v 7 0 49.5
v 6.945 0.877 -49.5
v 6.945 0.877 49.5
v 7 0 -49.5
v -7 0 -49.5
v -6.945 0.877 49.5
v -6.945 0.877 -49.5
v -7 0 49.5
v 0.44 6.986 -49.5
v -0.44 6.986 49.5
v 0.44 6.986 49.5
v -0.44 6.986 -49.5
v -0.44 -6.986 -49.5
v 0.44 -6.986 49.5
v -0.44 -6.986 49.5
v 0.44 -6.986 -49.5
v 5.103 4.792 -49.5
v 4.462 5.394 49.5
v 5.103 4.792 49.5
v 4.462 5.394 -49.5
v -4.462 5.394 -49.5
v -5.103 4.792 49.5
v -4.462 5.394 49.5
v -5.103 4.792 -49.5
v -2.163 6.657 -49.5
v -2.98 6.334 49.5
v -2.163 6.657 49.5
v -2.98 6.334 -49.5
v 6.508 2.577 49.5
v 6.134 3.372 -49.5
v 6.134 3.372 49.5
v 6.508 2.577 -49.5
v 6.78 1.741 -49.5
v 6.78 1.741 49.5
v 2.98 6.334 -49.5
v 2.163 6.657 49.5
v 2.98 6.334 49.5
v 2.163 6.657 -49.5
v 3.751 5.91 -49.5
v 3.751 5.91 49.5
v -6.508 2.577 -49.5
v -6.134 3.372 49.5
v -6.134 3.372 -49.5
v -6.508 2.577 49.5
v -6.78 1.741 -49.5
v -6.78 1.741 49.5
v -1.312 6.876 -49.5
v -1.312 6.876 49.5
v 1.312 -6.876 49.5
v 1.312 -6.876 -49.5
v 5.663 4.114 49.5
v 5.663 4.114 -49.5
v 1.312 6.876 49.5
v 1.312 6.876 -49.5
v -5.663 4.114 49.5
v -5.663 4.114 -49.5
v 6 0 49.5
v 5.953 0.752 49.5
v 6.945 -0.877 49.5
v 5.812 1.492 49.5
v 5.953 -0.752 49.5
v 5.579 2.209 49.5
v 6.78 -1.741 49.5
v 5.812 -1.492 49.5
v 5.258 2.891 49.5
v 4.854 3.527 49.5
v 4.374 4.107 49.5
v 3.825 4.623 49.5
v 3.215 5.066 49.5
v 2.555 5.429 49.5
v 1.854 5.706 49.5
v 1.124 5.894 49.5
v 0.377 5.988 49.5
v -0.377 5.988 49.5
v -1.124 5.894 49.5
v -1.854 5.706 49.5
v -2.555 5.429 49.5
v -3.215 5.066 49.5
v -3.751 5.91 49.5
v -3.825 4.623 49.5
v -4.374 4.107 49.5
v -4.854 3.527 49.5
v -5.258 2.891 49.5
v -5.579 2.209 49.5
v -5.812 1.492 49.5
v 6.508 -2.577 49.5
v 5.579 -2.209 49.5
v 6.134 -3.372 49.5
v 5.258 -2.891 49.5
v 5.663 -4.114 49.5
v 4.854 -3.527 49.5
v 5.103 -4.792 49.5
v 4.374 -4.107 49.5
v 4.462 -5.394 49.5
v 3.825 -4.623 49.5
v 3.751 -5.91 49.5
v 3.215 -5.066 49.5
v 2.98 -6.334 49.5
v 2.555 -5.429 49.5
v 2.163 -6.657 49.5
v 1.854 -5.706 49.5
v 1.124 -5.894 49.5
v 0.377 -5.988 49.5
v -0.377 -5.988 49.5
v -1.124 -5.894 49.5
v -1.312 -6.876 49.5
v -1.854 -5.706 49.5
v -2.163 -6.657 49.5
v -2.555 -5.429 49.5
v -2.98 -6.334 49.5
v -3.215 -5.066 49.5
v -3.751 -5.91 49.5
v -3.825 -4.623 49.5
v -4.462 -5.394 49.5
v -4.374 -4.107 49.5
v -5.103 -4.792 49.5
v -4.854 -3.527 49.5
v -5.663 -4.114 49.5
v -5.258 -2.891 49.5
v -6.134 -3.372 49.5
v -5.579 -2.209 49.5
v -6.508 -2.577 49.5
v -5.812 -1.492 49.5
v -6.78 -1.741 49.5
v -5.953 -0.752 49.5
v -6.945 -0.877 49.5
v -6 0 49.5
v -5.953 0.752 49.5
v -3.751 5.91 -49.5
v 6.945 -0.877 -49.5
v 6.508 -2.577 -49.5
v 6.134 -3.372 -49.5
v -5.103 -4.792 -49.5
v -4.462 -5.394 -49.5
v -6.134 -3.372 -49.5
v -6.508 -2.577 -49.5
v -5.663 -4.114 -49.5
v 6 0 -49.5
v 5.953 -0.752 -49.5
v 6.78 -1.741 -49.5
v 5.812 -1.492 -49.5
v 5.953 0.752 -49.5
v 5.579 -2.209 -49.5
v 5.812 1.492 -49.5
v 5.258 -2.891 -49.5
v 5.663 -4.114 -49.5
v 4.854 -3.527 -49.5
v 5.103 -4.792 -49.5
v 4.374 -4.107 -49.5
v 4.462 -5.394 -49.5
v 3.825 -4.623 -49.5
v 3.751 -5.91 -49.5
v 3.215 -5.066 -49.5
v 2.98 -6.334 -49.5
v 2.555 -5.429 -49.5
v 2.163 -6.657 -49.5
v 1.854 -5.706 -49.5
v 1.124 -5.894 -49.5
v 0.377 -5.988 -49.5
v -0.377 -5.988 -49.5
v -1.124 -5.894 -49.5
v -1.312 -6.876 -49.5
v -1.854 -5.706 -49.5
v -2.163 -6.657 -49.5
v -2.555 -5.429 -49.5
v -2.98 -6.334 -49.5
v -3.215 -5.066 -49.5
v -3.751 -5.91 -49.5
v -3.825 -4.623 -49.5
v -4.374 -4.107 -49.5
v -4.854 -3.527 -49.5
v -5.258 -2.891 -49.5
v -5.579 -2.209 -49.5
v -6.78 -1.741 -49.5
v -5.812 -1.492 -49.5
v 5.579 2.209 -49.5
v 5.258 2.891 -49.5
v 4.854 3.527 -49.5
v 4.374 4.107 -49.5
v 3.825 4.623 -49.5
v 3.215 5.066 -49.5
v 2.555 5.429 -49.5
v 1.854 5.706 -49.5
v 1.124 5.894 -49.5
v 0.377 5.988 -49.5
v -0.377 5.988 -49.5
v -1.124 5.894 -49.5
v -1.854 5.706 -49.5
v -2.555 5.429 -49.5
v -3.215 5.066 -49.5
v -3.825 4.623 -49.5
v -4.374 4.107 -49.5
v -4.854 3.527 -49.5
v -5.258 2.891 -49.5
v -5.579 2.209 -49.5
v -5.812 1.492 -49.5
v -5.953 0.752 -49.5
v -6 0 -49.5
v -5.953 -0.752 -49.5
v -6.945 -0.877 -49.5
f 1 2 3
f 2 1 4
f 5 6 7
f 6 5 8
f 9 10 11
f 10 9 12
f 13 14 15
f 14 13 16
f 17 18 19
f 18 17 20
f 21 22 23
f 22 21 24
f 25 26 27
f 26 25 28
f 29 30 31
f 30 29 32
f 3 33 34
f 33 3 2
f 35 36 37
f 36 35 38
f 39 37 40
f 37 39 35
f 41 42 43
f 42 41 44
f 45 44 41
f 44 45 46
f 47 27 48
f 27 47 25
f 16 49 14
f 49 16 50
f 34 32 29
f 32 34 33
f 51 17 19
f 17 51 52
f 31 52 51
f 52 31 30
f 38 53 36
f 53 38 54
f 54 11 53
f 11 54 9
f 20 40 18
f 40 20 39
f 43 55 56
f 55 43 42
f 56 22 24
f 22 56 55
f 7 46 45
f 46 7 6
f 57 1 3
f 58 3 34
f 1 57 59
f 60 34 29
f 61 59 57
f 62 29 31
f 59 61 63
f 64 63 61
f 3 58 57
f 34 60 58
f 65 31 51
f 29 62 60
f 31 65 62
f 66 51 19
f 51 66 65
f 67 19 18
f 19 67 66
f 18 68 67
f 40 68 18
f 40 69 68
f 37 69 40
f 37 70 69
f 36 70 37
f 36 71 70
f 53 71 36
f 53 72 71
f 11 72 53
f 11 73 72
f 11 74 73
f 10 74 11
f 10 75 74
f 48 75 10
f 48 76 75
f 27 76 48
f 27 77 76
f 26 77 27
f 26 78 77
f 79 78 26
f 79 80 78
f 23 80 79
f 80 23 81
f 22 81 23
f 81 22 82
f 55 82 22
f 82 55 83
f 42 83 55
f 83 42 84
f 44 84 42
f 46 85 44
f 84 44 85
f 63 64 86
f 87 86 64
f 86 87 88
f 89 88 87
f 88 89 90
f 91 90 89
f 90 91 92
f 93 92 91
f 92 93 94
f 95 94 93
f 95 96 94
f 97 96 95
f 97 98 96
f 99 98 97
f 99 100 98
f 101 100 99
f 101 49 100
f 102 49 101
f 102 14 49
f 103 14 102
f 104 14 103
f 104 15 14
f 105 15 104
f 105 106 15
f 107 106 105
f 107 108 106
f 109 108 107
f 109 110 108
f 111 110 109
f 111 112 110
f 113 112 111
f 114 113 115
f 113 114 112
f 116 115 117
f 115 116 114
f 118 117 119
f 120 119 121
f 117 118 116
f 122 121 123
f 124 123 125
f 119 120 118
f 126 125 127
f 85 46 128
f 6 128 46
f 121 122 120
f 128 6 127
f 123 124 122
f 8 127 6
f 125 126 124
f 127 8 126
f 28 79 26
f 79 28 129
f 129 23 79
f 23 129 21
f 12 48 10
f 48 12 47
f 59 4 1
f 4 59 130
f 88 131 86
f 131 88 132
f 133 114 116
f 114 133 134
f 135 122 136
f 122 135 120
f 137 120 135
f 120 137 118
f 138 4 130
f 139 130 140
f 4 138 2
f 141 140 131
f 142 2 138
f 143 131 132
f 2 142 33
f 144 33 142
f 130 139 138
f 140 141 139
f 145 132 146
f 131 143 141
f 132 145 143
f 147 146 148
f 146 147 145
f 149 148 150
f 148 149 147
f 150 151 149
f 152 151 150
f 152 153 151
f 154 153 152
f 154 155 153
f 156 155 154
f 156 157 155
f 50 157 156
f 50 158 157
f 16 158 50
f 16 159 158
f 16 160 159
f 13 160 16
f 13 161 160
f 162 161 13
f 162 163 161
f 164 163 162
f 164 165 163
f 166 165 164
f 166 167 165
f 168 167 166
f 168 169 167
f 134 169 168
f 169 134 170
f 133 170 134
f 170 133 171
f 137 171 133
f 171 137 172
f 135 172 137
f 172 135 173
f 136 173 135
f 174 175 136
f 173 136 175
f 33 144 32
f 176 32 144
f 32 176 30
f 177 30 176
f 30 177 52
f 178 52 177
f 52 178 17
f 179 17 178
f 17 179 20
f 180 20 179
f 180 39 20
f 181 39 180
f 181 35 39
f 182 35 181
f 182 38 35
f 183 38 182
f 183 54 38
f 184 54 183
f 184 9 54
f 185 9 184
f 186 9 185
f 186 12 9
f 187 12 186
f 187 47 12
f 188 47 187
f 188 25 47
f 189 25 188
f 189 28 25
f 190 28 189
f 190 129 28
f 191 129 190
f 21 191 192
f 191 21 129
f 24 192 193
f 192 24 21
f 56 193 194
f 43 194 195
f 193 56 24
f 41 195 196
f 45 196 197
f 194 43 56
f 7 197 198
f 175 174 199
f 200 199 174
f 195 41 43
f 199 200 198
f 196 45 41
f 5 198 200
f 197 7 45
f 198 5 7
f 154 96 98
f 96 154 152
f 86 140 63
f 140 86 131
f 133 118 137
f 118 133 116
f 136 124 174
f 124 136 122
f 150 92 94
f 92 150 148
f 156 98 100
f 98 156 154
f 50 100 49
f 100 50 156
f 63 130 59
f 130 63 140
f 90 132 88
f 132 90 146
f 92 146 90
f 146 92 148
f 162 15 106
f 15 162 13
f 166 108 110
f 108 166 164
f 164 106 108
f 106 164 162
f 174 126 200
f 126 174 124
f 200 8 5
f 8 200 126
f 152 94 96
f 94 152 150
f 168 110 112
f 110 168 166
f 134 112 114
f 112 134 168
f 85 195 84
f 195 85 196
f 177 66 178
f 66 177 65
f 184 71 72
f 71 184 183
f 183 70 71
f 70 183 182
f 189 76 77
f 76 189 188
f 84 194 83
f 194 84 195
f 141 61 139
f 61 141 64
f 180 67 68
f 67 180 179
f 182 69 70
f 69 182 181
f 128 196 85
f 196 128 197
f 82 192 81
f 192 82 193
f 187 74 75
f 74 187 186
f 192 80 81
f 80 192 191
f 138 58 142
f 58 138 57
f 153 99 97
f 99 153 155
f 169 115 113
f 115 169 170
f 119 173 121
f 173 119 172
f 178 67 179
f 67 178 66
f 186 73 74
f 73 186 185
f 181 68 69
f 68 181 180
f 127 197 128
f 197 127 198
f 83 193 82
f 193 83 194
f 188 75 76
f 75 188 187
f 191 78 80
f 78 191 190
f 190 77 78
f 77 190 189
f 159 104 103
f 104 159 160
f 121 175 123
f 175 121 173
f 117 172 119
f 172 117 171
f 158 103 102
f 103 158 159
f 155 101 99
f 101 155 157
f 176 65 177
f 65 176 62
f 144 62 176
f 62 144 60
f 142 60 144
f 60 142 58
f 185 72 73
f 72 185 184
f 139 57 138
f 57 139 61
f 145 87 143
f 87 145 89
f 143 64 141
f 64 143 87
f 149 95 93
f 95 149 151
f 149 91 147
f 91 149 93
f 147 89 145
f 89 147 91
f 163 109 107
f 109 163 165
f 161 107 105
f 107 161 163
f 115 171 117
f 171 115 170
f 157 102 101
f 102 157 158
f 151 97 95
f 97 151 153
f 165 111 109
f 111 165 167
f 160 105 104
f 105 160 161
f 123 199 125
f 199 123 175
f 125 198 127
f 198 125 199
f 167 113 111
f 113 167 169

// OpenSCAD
$fn = 50;


difference() {
	union() {
		translate(v = [0, 0, -49.5000000000]) {
			cylinder(h = 99, r = 7.0000000000);
		}
	}
	union() {
		translate(v = [0, 0, -100.0000000000]) {
			cylinder(h = 200, r = 6);
		}
	}
}
